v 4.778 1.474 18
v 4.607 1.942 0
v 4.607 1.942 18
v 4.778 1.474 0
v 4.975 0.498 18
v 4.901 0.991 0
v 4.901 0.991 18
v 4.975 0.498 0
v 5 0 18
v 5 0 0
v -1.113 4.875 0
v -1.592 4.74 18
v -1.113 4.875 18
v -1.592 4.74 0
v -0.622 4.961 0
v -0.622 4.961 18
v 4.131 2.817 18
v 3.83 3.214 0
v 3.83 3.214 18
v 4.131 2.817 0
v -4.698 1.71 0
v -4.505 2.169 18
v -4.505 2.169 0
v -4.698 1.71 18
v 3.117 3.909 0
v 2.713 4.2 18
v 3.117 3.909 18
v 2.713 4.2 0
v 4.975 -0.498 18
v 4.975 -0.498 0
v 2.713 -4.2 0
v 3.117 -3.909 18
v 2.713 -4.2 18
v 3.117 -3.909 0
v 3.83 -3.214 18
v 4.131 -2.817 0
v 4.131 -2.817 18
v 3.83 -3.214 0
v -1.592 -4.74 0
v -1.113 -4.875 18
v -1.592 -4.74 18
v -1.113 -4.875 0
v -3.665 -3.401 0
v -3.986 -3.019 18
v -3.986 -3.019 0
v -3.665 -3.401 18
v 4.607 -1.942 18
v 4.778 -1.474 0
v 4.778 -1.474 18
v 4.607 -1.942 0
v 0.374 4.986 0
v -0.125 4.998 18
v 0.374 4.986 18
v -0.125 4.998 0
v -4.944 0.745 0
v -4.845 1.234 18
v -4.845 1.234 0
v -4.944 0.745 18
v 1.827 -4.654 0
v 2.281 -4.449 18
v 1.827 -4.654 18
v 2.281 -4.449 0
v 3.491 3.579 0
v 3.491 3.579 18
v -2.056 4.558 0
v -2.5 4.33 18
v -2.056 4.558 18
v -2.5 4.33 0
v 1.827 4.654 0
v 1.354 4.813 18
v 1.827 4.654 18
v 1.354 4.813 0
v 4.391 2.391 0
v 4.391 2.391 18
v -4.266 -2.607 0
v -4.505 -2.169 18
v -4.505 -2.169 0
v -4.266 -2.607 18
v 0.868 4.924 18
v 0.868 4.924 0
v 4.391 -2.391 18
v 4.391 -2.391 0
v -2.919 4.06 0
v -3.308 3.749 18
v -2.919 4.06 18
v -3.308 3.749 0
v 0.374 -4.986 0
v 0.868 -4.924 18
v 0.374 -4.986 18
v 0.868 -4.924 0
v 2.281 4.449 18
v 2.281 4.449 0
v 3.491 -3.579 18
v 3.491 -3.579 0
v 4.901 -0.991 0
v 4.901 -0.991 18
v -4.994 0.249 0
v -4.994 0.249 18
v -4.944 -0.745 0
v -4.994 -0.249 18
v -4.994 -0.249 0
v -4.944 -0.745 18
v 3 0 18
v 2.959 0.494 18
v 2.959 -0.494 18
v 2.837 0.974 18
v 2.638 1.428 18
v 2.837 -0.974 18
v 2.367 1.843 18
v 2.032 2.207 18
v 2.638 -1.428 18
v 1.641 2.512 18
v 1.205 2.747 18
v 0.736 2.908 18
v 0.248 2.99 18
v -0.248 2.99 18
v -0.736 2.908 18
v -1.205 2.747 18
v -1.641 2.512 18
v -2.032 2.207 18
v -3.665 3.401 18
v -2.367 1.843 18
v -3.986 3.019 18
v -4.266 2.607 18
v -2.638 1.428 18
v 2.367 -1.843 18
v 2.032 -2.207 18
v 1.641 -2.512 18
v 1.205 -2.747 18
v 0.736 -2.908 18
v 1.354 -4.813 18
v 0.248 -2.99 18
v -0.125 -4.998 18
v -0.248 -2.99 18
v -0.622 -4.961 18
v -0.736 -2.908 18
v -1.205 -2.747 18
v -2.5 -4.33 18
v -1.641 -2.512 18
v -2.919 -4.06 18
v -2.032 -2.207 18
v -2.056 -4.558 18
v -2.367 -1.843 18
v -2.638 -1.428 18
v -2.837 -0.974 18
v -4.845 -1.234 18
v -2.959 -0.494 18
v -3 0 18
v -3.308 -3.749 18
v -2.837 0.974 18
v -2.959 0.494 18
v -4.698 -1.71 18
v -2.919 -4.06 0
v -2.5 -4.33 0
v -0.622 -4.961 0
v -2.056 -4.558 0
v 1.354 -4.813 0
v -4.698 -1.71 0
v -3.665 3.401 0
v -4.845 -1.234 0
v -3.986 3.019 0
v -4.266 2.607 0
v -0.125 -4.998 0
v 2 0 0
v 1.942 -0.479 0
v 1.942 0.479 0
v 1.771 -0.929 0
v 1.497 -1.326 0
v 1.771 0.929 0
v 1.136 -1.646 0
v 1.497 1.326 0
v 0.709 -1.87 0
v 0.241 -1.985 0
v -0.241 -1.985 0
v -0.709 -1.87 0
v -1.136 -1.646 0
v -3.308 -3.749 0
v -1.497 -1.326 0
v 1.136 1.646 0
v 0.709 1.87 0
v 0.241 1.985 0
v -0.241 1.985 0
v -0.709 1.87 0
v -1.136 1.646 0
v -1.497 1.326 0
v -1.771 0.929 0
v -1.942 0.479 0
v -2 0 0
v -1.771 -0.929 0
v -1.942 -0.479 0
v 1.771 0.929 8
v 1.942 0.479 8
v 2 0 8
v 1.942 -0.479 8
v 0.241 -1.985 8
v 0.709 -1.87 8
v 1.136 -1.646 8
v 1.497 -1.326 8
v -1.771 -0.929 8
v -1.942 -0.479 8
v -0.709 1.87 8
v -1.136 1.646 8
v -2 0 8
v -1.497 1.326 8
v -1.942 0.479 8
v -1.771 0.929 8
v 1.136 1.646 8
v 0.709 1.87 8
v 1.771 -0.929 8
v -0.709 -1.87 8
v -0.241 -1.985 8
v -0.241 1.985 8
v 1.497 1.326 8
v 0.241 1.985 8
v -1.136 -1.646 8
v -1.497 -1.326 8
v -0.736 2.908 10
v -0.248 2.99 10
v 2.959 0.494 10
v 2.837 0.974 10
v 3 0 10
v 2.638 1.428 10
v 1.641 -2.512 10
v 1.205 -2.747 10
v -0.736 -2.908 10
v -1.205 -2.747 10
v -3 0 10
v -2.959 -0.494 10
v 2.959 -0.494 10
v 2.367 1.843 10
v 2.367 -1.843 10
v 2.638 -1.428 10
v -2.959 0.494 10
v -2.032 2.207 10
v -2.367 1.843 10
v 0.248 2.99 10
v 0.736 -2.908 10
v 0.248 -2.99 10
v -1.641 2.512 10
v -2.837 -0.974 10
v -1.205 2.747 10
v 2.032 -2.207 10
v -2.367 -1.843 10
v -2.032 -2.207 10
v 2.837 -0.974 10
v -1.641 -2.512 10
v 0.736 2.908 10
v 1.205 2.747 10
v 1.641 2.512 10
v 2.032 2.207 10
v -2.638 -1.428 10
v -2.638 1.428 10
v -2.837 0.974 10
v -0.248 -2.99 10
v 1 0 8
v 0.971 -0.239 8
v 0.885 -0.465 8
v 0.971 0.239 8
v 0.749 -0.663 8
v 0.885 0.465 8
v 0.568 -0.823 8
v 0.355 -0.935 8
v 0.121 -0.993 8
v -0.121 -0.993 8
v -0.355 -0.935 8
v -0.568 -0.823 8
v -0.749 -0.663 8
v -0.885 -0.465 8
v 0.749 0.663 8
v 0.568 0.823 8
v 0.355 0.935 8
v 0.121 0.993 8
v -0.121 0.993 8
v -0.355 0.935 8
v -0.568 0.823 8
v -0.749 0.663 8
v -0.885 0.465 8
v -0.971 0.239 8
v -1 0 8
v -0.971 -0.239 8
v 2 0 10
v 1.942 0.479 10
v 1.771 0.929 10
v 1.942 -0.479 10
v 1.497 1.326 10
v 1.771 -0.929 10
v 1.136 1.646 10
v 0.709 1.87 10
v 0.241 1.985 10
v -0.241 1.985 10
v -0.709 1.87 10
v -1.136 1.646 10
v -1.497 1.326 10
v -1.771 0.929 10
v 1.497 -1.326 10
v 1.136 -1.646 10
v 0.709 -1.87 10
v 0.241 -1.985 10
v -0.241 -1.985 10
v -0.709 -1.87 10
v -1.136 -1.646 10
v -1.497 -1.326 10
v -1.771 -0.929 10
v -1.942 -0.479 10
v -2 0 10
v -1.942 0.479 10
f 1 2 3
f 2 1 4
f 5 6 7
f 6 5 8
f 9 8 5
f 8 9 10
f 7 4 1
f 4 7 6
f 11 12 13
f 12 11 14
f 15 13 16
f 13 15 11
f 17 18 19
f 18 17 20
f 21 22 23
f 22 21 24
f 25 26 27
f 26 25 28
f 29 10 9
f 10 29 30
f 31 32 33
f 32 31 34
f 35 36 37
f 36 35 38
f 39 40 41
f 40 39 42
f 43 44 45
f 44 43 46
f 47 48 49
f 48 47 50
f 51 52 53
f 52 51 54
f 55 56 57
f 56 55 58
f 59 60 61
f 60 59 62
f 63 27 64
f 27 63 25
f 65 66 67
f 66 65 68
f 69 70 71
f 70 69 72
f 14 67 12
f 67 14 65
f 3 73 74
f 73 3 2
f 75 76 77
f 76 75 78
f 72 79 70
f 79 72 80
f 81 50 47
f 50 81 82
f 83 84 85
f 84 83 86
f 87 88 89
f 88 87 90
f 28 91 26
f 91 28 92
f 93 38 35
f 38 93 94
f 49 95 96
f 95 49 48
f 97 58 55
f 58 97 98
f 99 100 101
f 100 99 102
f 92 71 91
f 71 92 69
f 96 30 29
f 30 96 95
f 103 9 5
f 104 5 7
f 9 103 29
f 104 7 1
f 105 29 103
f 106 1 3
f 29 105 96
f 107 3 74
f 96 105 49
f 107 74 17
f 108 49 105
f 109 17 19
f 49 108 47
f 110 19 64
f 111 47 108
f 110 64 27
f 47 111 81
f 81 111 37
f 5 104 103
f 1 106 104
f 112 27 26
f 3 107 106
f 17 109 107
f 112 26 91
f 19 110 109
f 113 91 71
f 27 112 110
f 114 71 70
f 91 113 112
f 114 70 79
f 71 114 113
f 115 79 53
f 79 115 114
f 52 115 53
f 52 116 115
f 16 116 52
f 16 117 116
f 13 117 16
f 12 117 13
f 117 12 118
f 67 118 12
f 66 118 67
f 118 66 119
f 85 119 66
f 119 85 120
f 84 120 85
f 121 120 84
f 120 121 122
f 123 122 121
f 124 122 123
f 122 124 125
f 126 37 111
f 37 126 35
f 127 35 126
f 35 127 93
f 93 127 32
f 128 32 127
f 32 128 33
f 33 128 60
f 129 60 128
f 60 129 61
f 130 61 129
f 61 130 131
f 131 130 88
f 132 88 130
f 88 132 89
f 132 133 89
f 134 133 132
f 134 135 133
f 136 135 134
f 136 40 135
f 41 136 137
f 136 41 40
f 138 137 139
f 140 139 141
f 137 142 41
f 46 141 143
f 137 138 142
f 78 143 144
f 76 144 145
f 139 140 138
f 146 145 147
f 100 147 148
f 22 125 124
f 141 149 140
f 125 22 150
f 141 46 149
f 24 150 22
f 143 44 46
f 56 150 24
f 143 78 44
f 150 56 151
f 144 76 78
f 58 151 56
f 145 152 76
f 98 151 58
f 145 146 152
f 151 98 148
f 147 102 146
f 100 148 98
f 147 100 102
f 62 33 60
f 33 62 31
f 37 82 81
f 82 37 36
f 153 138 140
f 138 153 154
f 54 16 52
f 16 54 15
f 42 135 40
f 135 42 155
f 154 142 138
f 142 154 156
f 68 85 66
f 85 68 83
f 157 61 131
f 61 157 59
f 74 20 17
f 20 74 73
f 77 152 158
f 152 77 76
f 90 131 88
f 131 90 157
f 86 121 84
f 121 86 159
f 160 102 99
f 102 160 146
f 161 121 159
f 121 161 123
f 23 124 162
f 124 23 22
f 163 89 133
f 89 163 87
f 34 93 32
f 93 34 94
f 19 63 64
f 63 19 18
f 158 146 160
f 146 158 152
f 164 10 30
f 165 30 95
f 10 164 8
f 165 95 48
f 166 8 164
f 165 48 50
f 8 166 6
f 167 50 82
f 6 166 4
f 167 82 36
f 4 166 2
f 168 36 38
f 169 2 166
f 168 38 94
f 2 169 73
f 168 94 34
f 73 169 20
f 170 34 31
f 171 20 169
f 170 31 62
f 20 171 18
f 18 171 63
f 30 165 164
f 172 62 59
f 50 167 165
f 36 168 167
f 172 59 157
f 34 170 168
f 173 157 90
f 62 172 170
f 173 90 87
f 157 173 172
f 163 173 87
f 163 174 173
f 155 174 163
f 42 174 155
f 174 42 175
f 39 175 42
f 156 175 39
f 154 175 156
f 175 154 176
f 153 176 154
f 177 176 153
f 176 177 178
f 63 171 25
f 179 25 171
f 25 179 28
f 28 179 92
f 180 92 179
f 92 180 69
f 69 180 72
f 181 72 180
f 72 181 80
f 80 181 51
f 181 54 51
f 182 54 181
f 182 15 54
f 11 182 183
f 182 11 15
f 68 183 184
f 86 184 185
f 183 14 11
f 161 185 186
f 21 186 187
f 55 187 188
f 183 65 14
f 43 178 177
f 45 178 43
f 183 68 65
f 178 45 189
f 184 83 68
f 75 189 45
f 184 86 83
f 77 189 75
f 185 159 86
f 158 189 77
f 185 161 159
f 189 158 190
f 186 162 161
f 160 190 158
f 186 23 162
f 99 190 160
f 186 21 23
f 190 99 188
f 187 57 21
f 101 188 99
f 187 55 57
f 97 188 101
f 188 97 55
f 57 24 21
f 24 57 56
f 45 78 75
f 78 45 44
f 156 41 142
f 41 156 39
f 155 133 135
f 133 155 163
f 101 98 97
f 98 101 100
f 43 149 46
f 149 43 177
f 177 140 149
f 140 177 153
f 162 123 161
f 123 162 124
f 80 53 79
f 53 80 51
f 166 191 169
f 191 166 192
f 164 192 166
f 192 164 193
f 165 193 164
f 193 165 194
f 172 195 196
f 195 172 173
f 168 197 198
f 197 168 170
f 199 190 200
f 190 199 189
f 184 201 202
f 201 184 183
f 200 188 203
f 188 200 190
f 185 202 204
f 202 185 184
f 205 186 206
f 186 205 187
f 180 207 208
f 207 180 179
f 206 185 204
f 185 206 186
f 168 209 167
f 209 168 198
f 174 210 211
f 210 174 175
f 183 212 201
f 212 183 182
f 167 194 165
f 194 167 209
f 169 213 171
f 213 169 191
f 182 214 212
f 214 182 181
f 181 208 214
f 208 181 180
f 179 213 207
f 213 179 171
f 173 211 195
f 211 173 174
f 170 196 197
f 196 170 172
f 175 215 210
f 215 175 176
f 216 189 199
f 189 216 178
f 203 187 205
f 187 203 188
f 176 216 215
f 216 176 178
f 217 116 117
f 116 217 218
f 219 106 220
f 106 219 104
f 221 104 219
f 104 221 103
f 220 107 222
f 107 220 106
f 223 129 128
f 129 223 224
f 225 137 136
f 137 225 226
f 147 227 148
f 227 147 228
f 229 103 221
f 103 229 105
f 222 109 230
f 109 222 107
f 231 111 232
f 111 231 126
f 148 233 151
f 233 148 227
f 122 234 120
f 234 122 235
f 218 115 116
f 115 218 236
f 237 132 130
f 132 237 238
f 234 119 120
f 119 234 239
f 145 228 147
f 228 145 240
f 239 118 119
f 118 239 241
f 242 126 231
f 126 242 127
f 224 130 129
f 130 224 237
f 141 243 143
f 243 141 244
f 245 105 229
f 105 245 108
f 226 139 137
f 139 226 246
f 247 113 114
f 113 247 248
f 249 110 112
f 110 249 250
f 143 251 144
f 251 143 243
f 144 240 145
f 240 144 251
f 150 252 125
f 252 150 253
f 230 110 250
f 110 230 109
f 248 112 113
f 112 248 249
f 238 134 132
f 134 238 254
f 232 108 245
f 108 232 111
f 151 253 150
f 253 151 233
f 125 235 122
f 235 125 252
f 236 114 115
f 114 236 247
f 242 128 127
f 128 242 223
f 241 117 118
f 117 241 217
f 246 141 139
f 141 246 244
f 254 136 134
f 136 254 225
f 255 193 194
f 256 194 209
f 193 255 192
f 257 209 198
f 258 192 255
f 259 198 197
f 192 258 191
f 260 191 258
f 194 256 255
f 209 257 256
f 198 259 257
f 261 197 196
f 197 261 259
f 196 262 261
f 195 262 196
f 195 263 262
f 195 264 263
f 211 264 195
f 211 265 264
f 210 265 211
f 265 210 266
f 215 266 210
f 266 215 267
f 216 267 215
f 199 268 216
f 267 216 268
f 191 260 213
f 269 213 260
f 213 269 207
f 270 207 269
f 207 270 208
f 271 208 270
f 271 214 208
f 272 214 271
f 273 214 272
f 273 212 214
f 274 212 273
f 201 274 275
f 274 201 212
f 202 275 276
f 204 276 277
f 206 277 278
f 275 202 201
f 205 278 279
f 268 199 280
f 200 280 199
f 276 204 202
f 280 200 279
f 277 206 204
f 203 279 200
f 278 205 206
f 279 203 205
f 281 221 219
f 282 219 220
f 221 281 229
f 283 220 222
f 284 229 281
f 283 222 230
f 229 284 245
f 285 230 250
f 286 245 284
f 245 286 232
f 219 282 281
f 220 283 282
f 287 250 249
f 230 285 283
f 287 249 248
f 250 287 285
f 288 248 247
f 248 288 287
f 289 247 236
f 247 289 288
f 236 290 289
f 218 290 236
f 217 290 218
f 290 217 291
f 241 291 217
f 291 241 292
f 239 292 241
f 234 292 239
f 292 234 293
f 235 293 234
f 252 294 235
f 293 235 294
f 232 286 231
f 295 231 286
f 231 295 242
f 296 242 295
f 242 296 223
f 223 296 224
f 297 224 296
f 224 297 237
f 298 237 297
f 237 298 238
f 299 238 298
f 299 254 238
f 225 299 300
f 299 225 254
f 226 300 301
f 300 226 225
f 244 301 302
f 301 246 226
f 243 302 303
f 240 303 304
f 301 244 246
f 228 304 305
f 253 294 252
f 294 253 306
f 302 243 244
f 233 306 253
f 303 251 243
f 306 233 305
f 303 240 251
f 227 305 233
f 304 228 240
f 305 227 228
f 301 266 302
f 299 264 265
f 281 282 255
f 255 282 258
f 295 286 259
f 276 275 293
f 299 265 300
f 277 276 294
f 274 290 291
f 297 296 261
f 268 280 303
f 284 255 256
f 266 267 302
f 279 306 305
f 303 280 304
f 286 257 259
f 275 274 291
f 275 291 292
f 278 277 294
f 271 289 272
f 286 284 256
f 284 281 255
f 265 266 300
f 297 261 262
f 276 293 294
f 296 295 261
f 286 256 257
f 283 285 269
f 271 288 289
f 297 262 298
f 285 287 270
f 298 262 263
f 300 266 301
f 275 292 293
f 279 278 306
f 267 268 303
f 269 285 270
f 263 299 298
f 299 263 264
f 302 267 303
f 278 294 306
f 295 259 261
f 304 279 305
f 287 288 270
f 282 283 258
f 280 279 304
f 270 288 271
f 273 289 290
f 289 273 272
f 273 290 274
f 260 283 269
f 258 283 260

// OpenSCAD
gasket_thickness = 2;
gasket_length = 18;

tube_inner_dia = 4;
tube_outer_dia = 6;
tube2_inner_dia = 2;
tube2_outer_dia = 4;

$fs = $preview ? 2 : 0.5;
$fa = $preview ? 15 : 5;

module main() {
	difference() {
		cylinder(h = gasket_length, d = max(tube_outer_dia, tube2_outer_dia) + gasket_thickness * 2);
		
		cylinder(h = gasket_length/2, d = min(tube_outer_dia, tube2_outer_dia));
		translate([0, 0, gasket_length / 2]) cylinder(h = gasket_length / 2, d = max(tube_outer_dia, tube2_outer_dia));
	}
	translate([0, 0, gasket_length / 2]) difference() {
		cylinder(h = gasket_thickness, d = max(tube_outer_dia, tube2_outer_dia), center = true);
		cylinder(h = gasket_thickness, d1 = min(tube_inner_dia, tube2_inner_dia), d2 = max(tube_inner_dia, tube2_inner_dia), center = true);
	}
}

main();
